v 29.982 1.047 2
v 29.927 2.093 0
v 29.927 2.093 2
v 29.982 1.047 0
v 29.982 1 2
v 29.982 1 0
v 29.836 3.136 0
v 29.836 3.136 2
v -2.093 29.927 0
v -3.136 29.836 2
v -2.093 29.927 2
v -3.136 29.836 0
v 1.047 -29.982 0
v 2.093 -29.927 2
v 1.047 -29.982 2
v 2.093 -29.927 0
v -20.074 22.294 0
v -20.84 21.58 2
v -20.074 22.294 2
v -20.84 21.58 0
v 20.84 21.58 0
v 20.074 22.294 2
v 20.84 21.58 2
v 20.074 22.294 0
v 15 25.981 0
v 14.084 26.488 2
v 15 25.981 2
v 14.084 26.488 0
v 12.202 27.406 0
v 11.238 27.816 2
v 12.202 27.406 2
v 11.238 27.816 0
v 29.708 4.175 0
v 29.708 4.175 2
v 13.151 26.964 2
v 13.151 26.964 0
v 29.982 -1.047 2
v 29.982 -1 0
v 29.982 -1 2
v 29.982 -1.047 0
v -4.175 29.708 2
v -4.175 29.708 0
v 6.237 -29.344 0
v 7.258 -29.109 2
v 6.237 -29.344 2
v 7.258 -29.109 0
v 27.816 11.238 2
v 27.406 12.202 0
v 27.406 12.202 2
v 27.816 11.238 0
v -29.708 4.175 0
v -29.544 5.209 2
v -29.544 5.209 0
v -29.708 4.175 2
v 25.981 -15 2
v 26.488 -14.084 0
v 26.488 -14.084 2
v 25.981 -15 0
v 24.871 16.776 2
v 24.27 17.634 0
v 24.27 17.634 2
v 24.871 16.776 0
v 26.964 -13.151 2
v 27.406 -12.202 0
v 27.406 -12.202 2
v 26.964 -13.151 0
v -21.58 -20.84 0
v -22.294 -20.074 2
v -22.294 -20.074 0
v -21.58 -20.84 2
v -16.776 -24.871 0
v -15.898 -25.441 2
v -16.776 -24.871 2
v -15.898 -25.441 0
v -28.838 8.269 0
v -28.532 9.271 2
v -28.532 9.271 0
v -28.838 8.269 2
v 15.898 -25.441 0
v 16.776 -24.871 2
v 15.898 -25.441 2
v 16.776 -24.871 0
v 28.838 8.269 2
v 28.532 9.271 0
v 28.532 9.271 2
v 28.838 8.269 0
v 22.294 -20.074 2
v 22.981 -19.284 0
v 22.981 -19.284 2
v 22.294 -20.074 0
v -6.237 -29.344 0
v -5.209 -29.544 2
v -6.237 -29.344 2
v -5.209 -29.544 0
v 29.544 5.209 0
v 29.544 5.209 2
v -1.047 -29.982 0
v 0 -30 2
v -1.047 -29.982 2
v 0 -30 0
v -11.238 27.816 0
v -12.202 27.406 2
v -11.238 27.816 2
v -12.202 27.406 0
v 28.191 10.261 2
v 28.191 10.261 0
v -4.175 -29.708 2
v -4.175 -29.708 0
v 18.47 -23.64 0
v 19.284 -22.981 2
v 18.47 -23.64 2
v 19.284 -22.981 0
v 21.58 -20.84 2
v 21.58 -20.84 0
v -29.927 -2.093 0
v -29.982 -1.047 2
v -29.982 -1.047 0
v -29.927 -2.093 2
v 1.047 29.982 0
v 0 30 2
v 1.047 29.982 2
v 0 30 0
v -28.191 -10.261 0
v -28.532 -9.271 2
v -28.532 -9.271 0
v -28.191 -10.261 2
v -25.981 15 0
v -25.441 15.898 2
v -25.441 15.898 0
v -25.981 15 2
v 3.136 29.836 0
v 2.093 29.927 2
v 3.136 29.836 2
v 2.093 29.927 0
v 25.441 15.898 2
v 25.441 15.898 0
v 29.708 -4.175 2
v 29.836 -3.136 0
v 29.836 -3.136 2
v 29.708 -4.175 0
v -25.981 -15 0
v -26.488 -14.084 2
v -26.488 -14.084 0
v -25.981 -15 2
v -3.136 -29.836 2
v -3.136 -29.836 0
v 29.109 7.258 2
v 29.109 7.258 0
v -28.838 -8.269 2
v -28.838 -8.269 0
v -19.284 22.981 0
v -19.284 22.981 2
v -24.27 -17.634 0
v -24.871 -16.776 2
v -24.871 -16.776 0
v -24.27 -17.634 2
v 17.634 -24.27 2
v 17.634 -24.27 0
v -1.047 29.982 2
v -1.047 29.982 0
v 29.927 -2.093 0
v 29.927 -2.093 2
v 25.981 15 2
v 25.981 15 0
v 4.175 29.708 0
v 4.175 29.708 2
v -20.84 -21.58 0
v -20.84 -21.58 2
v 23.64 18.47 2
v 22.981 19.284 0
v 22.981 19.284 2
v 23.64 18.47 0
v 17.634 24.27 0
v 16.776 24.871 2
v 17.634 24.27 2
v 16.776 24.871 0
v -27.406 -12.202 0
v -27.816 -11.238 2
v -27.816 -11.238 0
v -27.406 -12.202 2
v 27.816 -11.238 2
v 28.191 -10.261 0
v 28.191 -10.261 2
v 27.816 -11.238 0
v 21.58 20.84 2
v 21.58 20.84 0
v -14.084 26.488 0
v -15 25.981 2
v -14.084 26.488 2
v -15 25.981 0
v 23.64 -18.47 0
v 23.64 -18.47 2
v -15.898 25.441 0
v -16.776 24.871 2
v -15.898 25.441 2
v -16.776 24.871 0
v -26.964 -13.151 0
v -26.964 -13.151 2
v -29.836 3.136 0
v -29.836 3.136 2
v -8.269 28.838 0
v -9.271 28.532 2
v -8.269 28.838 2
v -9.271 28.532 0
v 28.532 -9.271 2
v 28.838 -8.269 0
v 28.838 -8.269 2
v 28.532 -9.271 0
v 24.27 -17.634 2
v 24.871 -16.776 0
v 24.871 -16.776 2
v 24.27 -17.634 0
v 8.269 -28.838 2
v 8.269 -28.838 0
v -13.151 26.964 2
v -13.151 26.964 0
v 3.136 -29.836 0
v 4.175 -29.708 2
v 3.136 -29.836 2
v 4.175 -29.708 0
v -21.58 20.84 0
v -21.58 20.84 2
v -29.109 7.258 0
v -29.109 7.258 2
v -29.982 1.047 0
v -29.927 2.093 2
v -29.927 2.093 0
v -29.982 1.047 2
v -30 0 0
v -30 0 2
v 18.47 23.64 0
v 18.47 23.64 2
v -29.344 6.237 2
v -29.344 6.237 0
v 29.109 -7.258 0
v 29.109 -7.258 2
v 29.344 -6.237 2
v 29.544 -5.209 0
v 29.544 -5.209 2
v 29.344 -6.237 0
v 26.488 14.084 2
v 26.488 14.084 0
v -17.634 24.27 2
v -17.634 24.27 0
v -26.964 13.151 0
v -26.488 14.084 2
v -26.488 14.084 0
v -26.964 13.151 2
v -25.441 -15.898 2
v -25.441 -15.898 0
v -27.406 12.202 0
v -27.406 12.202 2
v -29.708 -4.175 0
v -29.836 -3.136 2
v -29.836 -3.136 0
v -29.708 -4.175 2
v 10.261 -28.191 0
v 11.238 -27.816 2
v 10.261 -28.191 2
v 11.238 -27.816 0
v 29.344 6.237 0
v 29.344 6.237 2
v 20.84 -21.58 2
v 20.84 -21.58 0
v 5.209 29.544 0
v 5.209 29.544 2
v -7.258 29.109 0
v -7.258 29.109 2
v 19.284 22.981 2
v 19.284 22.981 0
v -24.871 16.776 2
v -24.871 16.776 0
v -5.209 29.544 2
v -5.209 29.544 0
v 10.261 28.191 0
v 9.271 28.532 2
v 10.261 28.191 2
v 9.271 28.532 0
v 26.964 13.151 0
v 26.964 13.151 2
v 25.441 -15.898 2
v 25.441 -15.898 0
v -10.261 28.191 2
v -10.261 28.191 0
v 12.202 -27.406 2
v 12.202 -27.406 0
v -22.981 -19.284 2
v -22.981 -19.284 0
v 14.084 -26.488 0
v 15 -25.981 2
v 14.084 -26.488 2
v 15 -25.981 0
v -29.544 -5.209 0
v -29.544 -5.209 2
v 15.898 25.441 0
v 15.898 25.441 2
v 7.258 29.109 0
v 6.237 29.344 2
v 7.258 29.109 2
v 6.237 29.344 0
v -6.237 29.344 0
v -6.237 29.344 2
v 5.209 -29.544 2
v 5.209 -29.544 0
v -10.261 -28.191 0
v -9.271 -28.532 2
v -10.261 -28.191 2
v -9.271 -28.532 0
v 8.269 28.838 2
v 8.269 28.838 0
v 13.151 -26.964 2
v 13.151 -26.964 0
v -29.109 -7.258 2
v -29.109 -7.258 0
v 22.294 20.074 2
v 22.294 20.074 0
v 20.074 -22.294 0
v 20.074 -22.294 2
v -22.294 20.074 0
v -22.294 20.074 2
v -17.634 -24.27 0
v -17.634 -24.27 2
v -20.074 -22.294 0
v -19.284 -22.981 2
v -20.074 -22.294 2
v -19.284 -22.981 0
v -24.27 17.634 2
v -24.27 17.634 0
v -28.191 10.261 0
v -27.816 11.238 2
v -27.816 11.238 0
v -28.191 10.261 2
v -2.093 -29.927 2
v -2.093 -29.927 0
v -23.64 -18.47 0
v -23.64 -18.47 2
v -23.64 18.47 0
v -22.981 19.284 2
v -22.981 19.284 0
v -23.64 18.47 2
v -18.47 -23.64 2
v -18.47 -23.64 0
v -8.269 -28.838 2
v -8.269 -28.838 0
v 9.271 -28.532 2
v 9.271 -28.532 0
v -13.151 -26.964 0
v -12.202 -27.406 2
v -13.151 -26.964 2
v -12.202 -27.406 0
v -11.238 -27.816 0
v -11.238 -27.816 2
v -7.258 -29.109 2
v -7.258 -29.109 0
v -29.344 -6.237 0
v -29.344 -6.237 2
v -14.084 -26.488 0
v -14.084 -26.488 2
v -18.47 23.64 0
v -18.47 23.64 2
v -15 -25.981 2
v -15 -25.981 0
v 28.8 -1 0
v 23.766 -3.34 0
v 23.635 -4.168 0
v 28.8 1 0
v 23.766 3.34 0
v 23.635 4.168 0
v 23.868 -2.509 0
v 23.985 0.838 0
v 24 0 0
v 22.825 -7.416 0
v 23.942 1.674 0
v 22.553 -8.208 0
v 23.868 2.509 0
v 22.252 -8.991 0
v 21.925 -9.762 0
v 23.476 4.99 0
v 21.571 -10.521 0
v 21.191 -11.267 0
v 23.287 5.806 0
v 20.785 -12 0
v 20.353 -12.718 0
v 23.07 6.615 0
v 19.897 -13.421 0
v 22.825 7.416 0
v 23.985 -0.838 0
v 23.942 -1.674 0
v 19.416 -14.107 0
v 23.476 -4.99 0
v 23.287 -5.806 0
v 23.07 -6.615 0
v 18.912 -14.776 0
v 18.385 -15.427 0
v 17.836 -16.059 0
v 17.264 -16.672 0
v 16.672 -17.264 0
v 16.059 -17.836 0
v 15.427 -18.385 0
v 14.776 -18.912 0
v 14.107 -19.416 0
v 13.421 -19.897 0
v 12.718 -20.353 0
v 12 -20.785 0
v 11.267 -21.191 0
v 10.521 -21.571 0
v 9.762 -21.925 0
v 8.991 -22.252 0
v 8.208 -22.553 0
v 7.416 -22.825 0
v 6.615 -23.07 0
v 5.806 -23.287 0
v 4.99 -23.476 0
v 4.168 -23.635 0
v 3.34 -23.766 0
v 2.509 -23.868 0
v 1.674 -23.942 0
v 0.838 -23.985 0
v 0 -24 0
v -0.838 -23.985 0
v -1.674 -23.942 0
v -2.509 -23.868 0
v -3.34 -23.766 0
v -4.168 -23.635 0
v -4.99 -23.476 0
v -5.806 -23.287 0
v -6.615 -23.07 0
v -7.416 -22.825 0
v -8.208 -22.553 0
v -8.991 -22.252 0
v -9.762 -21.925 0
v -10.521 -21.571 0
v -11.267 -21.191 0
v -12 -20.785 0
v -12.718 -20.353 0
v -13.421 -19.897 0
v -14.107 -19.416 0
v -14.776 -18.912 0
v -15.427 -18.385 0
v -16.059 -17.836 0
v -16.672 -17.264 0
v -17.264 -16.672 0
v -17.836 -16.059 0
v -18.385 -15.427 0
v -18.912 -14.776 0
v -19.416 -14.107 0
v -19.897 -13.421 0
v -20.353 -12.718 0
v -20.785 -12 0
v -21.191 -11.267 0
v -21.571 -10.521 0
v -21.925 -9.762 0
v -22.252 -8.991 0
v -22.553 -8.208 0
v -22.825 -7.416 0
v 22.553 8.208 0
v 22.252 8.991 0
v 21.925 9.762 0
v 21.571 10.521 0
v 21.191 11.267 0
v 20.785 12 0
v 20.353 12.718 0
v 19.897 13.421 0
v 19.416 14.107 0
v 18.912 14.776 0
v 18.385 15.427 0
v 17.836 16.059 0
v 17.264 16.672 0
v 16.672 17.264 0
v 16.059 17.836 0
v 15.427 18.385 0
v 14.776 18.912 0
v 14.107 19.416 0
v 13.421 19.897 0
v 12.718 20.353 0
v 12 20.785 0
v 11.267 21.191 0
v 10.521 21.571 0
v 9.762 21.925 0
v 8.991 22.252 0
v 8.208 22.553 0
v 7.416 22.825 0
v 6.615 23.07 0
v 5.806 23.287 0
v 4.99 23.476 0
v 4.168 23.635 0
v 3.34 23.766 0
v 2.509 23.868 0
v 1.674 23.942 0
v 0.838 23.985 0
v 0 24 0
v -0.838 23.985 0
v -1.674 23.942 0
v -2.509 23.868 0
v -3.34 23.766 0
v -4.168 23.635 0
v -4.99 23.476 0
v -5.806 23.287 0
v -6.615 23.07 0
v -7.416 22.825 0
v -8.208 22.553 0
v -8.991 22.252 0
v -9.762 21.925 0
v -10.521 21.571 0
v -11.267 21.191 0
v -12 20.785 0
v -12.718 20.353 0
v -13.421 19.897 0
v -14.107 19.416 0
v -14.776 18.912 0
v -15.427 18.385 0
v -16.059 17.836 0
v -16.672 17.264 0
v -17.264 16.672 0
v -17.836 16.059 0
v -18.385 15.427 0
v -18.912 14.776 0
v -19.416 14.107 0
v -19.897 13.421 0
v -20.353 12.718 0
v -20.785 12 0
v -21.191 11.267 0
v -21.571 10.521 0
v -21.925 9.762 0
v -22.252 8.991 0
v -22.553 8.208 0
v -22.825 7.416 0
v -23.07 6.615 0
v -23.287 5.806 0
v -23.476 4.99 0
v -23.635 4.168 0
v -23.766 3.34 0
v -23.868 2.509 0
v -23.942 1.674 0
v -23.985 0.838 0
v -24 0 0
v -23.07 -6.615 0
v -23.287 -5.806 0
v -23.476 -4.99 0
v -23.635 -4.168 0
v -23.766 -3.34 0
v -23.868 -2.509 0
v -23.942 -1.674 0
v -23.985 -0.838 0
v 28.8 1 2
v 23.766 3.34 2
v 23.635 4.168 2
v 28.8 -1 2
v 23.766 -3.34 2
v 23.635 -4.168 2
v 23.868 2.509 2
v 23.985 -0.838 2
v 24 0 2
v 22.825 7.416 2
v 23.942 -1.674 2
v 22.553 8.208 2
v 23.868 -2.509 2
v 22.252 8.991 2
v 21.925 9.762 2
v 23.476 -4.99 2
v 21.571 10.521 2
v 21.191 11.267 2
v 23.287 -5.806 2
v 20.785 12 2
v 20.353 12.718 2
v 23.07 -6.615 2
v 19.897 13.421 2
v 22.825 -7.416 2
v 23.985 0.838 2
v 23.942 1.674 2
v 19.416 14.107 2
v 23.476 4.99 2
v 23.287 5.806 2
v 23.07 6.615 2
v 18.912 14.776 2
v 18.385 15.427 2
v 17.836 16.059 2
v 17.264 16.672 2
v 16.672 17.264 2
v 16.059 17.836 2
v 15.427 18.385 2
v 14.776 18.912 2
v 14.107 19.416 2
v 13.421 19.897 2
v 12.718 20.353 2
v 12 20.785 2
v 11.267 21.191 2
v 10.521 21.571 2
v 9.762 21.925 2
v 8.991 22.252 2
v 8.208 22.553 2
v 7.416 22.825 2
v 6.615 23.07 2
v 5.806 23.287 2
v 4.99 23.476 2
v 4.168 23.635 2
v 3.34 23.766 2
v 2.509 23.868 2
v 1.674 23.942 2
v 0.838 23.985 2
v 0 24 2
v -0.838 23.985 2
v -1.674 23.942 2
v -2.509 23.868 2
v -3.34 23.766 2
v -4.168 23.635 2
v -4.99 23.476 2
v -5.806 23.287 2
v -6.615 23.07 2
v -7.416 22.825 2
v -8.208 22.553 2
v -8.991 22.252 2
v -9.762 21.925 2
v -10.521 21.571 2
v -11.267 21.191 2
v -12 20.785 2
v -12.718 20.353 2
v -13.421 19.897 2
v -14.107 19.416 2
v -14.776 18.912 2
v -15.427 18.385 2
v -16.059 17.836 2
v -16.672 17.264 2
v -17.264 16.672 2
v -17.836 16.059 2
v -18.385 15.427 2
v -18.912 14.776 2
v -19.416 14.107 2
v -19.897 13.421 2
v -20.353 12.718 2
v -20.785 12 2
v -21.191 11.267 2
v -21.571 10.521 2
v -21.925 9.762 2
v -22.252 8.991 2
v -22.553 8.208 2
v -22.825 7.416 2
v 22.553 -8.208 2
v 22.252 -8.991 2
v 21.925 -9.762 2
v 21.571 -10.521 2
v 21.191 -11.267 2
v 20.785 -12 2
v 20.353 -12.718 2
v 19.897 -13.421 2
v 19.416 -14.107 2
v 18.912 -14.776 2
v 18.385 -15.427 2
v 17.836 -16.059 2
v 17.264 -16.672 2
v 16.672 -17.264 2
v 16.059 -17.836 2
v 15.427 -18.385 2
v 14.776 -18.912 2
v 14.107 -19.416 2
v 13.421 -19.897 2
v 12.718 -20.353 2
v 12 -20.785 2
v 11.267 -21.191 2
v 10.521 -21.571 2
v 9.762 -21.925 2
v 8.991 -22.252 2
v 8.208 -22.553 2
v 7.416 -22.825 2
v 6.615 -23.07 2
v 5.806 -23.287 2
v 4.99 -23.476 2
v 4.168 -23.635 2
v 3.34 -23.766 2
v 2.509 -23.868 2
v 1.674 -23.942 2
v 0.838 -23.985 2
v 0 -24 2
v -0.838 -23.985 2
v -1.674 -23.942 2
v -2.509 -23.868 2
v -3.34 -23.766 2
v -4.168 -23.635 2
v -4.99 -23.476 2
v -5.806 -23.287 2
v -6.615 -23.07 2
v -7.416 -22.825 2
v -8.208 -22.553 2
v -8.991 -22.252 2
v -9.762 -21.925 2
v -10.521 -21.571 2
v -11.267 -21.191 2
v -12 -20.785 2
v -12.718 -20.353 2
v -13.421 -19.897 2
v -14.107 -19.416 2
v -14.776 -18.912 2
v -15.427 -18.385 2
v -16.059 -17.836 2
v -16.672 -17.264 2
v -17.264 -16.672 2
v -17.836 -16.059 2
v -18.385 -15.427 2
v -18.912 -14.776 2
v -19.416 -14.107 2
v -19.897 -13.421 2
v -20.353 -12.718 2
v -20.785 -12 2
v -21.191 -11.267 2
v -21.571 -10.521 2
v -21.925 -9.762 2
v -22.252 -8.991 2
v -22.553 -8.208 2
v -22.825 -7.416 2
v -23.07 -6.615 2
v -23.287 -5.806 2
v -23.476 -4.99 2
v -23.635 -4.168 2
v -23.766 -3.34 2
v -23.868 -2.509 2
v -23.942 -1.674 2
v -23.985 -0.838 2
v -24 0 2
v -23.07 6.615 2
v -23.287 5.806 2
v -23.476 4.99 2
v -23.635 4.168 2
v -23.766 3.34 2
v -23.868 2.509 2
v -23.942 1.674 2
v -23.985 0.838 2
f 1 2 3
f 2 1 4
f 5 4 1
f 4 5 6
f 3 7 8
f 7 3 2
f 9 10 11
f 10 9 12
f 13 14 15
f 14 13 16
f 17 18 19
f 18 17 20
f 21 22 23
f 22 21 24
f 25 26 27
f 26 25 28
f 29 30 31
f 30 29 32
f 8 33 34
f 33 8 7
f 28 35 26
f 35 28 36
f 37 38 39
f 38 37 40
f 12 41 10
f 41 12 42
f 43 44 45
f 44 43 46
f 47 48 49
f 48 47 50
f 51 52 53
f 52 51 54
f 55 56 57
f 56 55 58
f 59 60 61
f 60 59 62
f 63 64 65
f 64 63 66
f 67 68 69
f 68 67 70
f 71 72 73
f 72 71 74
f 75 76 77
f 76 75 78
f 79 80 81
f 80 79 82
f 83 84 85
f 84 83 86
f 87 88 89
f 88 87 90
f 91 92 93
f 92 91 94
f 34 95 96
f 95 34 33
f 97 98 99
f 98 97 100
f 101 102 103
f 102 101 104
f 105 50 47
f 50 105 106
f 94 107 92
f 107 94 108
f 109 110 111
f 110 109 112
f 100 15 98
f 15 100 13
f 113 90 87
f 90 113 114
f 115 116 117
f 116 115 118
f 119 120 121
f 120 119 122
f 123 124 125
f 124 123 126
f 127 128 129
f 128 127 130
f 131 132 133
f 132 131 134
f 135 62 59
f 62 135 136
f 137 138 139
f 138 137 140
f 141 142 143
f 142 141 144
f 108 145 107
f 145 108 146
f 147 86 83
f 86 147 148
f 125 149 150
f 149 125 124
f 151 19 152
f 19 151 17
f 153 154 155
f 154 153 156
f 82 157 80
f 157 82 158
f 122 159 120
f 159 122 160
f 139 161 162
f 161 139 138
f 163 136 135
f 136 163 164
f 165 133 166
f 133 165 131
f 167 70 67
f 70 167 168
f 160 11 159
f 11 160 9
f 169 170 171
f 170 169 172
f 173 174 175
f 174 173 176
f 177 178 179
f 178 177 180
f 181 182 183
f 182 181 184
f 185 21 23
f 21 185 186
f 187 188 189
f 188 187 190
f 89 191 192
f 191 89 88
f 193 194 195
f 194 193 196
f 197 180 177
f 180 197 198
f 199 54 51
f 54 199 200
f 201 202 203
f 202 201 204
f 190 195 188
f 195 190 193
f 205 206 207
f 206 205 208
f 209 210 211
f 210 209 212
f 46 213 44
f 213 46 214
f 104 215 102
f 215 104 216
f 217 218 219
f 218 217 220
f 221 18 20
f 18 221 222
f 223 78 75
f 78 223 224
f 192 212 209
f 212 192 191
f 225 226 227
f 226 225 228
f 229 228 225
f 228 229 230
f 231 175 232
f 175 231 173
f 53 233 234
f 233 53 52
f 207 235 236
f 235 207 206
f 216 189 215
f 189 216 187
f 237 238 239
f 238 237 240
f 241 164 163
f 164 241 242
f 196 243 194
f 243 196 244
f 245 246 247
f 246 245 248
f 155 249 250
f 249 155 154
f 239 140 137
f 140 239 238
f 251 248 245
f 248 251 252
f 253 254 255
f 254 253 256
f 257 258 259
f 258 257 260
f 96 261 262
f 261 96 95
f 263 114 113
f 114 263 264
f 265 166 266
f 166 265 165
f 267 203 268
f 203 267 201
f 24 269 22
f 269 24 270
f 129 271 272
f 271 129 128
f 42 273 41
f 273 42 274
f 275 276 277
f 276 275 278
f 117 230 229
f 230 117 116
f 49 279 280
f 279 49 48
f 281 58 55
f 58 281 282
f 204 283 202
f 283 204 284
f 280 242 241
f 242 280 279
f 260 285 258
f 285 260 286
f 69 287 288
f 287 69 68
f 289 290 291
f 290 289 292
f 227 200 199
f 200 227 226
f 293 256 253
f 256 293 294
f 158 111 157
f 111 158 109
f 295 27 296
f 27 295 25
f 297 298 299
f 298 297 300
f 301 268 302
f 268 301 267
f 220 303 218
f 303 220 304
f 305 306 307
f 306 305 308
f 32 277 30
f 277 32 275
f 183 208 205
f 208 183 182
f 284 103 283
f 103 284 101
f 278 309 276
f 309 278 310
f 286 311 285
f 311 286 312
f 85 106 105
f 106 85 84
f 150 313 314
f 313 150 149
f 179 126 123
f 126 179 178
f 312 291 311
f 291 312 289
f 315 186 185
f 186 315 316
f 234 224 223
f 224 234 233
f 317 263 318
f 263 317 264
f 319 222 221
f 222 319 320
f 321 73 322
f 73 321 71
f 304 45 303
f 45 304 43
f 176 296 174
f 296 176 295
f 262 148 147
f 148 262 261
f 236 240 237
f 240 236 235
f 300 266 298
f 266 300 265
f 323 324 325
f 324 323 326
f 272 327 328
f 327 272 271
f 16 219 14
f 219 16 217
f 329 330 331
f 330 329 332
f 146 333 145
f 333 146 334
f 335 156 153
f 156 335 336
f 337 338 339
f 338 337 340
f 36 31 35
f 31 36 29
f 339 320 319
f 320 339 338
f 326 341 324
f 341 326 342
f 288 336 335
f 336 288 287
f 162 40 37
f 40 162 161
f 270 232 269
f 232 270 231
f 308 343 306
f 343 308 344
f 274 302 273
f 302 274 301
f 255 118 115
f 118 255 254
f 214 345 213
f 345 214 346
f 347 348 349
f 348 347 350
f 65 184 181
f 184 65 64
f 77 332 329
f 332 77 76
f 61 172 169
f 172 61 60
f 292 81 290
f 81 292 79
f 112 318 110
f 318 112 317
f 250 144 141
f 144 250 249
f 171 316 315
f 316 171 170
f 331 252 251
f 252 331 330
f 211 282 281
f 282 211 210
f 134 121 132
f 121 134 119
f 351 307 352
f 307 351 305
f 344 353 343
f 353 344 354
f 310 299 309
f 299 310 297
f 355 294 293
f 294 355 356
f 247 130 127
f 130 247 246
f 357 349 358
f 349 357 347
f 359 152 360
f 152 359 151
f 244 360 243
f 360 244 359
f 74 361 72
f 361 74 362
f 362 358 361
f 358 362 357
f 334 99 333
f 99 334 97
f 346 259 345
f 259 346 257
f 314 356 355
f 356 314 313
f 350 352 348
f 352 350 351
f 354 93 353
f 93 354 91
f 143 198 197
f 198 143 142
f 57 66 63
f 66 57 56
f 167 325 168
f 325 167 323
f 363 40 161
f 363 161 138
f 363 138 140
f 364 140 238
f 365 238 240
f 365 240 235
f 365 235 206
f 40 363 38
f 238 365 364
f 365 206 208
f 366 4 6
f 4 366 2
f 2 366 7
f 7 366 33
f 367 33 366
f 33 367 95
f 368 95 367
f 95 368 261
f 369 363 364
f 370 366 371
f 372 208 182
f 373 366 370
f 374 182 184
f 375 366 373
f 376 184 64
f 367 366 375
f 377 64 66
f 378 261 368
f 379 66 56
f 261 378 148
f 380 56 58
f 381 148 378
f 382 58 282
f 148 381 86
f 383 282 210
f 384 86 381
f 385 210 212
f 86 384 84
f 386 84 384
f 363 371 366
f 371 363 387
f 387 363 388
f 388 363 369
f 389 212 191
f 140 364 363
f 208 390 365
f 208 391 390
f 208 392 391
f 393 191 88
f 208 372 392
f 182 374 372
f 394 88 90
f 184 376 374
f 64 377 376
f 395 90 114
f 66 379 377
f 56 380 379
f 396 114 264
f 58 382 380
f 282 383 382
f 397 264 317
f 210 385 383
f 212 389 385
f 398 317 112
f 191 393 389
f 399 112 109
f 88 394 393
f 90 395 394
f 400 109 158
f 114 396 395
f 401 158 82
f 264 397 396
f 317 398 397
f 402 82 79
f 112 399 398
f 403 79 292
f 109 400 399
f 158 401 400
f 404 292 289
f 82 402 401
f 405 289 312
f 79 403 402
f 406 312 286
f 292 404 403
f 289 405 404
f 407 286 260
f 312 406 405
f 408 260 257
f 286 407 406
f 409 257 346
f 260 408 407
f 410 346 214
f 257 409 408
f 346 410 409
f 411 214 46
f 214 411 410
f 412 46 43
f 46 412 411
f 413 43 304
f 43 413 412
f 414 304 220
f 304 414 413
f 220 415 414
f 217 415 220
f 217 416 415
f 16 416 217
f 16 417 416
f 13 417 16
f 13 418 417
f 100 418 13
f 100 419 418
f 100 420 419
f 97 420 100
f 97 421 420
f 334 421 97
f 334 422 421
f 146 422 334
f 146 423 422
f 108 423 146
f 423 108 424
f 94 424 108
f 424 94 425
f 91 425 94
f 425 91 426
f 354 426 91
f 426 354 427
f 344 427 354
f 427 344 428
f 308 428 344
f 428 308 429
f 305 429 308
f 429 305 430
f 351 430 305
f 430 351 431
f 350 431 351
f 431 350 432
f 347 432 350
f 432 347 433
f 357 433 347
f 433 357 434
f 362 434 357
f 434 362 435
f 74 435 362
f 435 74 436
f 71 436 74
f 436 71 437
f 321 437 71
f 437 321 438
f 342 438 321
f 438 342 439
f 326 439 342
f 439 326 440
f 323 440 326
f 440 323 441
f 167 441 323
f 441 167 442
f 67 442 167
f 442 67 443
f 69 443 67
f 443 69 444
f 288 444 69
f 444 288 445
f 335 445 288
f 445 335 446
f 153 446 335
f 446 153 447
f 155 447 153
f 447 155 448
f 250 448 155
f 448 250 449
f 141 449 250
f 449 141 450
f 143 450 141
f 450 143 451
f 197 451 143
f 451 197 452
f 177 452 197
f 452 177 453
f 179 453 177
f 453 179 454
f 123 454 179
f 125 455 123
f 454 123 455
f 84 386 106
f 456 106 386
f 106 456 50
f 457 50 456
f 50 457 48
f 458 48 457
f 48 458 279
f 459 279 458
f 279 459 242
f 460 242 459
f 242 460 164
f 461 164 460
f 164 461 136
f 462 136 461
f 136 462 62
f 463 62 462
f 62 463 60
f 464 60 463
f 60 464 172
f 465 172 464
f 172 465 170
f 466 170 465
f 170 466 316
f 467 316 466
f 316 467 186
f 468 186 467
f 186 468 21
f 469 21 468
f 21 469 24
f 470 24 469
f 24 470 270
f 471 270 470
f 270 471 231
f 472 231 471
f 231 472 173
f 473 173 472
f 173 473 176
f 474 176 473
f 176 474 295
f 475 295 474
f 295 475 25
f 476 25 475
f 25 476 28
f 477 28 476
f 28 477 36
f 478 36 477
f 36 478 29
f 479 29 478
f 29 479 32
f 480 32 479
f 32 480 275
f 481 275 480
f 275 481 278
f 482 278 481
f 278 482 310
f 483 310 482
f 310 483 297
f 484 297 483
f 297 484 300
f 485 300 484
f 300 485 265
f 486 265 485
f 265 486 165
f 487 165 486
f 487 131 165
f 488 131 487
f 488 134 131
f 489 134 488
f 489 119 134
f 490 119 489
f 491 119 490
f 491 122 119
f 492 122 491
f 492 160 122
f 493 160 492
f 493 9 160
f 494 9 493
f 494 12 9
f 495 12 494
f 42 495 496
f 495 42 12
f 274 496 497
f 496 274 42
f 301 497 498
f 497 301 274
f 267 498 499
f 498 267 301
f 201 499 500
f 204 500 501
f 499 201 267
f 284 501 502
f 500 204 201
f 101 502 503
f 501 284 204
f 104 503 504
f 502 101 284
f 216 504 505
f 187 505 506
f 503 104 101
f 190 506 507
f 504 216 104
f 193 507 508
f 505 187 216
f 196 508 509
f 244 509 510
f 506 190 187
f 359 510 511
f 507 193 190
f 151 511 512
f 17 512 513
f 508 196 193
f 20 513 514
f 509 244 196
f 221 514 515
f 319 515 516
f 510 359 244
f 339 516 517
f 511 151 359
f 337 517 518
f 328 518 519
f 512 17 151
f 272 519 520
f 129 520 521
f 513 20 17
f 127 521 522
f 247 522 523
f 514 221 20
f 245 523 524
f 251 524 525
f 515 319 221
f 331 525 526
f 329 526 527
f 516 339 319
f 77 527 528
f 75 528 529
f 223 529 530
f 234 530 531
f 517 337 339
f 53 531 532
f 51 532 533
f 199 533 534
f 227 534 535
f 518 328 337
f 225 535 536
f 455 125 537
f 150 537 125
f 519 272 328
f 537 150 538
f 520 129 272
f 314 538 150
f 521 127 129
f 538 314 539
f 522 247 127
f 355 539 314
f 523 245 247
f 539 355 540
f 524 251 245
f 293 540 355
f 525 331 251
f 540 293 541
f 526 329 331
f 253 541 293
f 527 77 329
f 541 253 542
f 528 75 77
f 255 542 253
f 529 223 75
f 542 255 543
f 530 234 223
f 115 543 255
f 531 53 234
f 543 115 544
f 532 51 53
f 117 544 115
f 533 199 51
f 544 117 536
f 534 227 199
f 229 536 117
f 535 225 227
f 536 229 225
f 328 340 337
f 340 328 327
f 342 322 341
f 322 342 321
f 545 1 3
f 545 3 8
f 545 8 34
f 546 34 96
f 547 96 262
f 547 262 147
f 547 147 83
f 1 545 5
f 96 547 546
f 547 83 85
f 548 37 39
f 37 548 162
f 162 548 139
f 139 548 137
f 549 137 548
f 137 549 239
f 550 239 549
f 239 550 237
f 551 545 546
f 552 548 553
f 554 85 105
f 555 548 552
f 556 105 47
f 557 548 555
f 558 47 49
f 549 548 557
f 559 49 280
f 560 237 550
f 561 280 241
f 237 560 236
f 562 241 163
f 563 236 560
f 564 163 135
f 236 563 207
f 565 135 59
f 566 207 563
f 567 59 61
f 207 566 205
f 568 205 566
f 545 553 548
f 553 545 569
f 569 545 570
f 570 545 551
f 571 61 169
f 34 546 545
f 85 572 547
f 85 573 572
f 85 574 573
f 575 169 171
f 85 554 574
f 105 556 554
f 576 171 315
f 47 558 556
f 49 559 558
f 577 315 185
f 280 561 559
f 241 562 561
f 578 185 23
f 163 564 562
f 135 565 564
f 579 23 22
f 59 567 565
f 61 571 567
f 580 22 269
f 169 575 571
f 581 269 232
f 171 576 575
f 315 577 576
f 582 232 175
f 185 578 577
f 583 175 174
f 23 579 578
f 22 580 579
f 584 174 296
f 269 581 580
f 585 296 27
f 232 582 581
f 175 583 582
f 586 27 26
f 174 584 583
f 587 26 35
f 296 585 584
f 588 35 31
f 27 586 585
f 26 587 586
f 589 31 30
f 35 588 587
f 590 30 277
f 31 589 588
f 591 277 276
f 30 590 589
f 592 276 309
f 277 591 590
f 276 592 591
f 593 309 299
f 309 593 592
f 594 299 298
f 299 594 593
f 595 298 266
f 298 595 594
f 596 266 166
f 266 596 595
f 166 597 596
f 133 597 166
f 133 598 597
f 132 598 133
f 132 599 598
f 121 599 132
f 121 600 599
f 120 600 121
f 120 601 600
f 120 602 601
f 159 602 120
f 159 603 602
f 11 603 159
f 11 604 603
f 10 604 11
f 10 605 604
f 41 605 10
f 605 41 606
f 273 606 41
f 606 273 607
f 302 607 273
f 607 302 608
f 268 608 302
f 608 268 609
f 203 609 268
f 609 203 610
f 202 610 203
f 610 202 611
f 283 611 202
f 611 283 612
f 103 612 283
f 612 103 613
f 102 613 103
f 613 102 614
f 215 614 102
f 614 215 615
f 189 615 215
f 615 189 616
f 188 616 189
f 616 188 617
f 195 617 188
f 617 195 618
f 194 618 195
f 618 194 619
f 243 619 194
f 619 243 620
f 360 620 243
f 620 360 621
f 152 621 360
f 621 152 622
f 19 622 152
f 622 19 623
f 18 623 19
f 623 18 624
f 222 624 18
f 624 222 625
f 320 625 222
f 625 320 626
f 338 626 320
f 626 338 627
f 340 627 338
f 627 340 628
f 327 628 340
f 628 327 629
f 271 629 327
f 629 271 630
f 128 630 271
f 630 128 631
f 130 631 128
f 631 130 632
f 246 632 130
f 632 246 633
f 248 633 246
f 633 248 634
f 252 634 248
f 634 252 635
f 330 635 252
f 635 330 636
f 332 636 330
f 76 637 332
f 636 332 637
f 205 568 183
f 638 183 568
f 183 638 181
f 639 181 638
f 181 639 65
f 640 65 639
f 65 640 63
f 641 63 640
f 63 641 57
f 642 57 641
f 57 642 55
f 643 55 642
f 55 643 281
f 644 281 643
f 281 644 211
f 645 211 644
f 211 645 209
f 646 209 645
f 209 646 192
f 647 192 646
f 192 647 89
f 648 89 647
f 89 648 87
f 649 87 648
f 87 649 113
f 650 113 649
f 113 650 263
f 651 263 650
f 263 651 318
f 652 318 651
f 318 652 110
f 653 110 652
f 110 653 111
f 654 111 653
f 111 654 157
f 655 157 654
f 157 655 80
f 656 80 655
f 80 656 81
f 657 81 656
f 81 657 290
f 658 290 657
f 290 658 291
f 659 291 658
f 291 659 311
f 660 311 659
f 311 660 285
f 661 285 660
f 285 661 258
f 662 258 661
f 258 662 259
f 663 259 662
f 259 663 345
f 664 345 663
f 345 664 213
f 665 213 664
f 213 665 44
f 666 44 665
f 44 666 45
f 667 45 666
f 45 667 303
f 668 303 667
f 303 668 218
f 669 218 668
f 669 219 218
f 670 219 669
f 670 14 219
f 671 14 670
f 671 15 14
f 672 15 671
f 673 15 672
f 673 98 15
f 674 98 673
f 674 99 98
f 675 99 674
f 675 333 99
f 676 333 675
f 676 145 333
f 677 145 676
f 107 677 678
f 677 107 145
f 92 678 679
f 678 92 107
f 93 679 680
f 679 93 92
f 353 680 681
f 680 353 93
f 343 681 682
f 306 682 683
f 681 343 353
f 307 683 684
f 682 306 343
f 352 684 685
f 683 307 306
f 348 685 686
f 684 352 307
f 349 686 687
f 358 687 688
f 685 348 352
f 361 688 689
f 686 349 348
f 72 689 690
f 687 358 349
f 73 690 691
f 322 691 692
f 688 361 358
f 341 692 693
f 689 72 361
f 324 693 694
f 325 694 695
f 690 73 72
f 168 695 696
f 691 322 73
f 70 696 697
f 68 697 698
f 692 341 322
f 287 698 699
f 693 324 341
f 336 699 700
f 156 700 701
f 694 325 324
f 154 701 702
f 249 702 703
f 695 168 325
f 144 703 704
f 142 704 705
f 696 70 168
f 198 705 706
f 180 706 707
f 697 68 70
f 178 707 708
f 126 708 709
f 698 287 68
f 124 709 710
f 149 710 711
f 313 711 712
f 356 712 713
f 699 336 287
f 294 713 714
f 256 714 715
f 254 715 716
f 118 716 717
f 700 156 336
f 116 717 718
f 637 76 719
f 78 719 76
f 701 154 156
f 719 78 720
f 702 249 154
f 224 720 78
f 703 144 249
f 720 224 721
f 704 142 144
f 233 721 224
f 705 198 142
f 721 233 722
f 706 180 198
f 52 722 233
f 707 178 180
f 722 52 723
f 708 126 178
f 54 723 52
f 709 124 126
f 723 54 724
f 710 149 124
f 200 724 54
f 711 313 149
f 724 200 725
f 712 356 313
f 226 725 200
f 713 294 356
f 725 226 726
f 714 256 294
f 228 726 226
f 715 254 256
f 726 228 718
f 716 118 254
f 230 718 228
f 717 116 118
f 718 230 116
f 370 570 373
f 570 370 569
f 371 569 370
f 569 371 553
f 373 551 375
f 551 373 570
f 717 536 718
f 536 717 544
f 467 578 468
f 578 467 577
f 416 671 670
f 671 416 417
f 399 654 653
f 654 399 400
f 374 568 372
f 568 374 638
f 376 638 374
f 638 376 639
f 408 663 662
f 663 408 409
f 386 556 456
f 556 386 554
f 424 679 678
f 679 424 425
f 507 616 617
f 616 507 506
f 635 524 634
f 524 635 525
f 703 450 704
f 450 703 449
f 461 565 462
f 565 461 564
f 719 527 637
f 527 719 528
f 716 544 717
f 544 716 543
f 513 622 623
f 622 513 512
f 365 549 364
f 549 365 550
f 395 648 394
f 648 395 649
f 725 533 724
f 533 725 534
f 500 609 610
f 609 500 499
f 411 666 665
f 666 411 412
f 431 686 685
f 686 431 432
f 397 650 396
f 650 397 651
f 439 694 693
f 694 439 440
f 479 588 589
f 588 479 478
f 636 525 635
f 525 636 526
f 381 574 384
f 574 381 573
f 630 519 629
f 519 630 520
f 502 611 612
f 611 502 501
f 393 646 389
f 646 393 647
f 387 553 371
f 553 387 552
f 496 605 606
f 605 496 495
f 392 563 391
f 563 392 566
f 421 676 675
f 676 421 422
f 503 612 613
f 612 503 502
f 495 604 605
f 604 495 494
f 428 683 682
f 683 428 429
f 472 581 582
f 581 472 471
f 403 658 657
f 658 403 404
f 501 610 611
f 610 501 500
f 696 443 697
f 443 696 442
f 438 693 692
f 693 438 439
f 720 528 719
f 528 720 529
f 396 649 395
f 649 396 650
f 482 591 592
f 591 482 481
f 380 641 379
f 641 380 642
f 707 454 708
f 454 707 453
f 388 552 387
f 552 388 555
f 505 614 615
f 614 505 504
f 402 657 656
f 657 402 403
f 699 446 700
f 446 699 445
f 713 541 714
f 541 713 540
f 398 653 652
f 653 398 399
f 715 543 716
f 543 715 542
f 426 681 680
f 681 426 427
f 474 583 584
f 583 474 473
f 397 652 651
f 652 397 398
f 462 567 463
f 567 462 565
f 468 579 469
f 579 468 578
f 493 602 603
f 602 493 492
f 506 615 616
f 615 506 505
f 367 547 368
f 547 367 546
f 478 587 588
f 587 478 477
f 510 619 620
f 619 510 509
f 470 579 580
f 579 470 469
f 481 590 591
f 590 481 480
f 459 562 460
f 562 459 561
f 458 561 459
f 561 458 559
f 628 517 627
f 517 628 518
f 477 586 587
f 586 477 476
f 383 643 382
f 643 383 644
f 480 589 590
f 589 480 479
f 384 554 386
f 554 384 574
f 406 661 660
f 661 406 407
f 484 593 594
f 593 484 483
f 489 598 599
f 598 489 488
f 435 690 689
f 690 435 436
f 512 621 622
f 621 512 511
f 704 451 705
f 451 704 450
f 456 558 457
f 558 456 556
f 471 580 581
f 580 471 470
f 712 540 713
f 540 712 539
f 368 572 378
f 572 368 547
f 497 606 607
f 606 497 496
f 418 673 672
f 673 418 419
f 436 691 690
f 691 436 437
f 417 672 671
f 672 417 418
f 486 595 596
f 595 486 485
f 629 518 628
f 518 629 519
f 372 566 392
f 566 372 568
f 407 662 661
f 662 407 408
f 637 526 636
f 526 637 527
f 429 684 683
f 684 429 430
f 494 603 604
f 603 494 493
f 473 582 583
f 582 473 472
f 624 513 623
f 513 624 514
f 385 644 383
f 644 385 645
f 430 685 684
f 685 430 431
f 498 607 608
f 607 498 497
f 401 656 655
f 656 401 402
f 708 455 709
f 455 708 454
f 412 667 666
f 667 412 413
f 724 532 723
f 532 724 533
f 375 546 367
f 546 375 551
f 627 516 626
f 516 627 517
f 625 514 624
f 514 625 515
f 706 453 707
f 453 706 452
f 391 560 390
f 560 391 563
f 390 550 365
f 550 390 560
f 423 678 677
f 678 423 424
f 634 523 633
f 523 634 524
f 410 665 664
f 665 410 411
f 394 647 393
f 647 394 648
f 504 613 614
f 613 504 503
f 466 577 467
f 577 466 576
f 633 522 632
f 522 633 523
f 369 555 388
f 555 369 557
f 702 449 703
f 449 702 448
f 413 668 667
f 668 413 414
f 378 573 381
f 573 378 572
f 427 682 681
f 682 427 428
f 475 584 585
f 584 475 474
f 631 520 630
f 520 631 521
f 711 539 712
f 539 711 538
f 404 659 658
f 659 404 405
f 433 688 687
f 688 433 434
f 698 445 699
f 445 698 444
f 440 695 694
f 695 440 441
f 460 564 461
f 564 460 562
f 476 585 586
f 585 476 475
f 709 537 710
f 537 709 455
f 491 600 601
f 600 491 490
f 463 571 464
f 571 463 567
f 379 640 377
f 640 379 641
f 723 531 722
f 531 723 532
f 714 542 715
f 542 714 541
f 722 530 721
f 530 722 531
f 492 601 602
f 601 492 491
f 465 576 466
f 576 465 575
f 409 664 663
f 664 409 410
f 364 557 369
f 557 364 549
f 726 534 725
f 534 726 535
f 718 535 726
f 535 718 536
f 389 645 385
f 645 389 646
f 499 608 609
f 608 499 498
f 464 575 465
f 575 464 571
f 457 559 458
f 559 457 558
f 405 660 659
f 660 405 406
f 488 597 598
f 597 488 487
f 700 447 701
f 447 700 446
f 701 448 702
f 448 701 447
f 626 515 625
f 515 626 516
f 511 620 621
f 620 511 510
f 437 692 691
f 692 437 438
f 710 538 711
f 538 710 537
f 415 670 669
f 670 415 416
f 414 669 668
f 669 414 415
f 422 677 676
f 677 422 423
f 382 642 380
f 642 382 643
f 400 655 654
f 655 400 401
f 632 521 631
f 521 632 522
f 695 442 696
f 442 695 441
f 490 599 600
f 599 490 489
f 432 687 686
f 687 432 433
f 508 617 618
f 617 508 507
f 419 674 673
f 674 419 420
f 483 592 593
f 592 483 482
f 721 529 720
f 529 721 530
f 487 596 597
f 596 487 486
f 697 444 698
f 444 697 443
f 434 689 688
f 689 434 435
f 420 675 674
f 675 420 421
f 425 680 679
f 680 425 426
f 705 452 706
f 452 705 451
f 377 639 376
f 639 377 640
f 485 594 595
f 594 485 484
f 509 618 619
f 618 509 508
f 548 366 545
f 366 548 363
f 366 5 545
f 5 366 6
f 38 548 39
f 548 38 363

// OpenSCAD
// Test rings to find the right hole size for the 45 mm pole.
// One 48 mm ring, flat (2 mm tall, 6 mm wall) so it grips the bed well.
// Print in PLA, 0.2 mm layers, no supports. Slide it onto the pole:
// it should slide on easily without wobbling.

holes  = [48.0];             // inner diameter, mm
wall   = 6;                  // ring wall thickness, mm
height = 2;                  // ring height, mm
gap    = 8;                  // space between rings, mm
$fn    = 180;

module ring(d, notches) {
  difference() {
    cylinder(h = height, d = d + 2 * wall);
    translate([0, 0, -1]) cylinder(h = height + 2, d = d);
    // Notches on the outside edge to tell the rings apart.
    for (i = [0 : notches - 1])
      rotate([0, 0, i * 12])
        translate([d / 2 + wall - 1.2, -1, -1]) cube([2, 2, height + 2]);
  }
}

for (i = [0 : len(holes) - 1])
  translate([i * (holes[i] + 2 * wall + gap), 0, 0]) ring(holes[i], i + 1);
